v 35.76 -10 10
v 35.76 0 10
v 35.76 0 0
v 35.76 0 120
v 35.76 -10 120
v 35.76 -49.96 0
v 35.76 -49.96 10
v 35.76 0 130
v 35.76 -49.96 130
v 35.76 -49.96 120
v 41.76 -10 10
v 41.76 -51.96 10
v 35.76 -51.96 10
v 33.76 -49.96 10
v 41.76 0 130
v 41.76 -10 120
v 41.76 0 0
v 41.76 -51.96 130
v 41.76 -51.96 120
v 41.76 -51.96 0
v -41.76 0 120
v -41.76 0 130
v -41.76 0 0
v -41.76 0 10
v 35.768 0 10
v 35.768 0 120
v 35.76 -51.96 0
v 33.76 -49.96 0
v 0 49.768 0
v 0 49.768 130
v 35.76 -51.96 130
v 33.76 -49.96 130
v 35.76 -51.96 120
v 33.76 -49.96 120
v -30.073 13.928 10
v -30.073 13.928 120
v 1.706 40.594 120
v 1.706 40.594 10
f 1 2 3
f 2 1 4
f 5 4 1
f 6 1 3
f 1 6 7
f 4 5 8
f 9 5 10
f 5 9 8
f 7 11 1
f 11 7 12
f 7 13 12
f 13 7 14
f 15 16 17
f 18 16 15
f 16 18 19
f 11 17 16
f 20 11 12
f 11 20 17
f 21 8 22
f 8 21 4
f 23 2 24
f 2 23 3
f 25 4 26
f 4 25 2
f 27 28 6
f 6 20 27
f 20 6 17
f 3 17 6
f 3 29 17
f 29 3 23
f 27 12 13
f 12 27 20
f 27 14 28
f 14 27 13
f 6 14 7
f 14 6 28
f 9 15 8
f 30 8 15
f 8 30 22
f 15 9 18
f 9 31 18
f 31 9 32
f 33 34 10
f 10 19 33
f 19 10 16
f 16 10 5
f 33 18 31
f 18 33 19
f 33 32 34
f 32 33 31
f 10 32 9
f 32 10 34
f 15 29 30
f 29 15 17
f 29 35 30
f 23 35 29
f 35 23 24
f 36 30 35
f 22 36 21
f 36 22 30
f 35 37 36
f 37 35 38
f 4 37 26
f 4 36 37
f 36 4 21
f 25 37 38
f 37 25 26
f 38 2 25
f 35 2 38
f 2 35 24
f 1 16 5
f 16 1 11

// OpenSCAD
// file: triangles.scad
/*
Triangles.scad
 Author: Tim Koopman
 https://github.com/tkoopman/Delta-Diamond/blob/master/OpenSCAD/Triangles.scad

         angleCA
           /|\
        a / H \ c
         /  |  \
 angleAB ------- angleBC
            b

Standard Parameters
	center: true/false
		If true same as centerXYZ = [true, true, true]

	centerXYZ: Vector of 3 true/false values [CenterX, CenterY, CenterZ]
		center must be left undef

	height: The 3D height of the Triangle. Ignored if heights defined

	heights: Vector of 3 height values heights @ [angleAB, angleBC, angleCA]
		If CenterZ is true each height will be centered individually, this means
		the shape will be different depending on CenterZ. Most times you will want
		CenterZ to be true to get the shape most people want.
*/

/* 
Triangle
	a: Length of side a
	b: Length of side b
	angle: angle at point angleAB
*/
module Triangle(
			a, b, angle, height=1, heights=undef,
			center=undef, centerXYZ=[false,false,false])
{
	// Calculate Heights at each point
	heightAB = ((heights==undef) ? height : heights[0])/2;
	heightBC = ((heights==undef) ? height : heights[1])/2;
	heightCA = ((heights==undef) ? height : heights[2])/2;
	centerZ = (center || (center==undef && centerXYZ[2]))?0:max(heightAB,heightBC,heightCA);

	// Calculate Offsets for centering
	offsetX = (center || (center==undef && centerXYZ[0]))?((cos(angle)*a)+b)/3:0;
	offsetY = (center || (center==undef && centerXYZ[1]))?(sin(angle)*a)/3:0;
	
	pointAB1 = [-offsetX,-offsetY, centerZ-heightAB];
	pointAB2 = [-offsetX,-offsetY, centerZ+heightAB];
	pointBC1 = [b-offsetX,-offsetY, centerZ-heightBC];
	pointBC2 = [b-offsetX,-offsetY, centerZ+heightBC];
	pointCA1 = [(cos(angle)*a)-offsetX,(sin(angle)*a)-offsetY, centerZ-heightCA];
	pointCA2 = [(cos(angle)*a)-offsetX,(sin(angle)*a)-offsetY, centerZ+heightCA];

	polyhedron(
		points=[	pointAB1, pointBC1, pointCA1,
					pointAB2, pointBC2, pointCA2 ],
		faces=[	
			[0, 1, 2],
			[3, 5, 4],
			[0, 3, 1],
			[1, 3, 4],
			[1, 4, 2],
			[2, 4, 5],
			[2, 5, 0],
			[0, 5, 3] ] );
}

/*
Isosceles Triangle
	Exactly 2 of the following paramaters must be defined.
	If all 3 defined H will be ignored.
	b: length of side b
	angle: angle at points angleAB & angleBC.
*/
module Isosceles_Triangle(
			b, angle, H=undef, height=1, heights=undef,
			center=undef, centerXYZ=[true, false, false])
{
	valid = 	(angle!=undef)?((angle < 90) && (b!=undef||H!=undef)) : (b!=undef&&H!=undef);
	ANGLE = (angle!=undef) ? angle : atan(H / (b/2));
	a = (b==undef)?(H/sin((180-(angle*2))/2)) : 
		 (b / cos(ANGLE))/2;
	B = (b==undef)? (cos(angle)*a)*2:b;
	if (valid)
	{
		Triangle(a=a, b=B, angle=ANGLE, height=height, heights=heights,
					center=center, centerXYZ=centerXYZ);
	} else {
		echo("Invalid Isosceles_Triangle. Must specify any 2 of b, angle and H, and if angle used angle must be less than 90");
	}
}

/*
Right Angled Triangle
	Create a Right Angled Triangle where the hypotenuse will be calculated.

       |\
      a| \
       |  \
       ----
         b
	a: length of side a
	b: length of side b
*/
module Right_Angled_Triangle(
			a, b, height=1, heights=undef,
			center=undef, centerXYZ=[false, false, false])
{
	Triangle(a=a, b=b, angle=90, height=height, heights=heights,
				center=center, centerXYZ=centerXYZ);
}

/*
Wedge
	Is same as Right Angled Triangle with 2 different heights, and rotated.
	Good for creating support structures.
*/
module Wedge(a, b, w1, w2)
{
	rotate([90,0,0])
		Right_Angled_Triangle(a, b, heights=[w1, w2, w1], centerXYZ=[false, false, true]);
}

/*
Equilateral Triangle
	Create a Equilateral Triangle.

	l: Length of all sides (a, b & c)
	H: Triangle size will be based on the this 2D height
		When using H, l is ignored.
*/
module Equilateral_Triangle(
			l=10, H=undef, height=1, heights=undef,
			center=undef, centerXYZ=[true,false,false])
{
	L = (H==undef)?l:H/sin(60);
	Triangle(a=L,b=L,angle=60,height=height, heights=heights,
				center=center, centerXYZ=centerXYZ);
}

/*
Trapezoid
	Create a Basic Trapezoid (Based on Isosceles_Triangle)

            d
          /----\
         /  |   \
     a  /   H    \ c
       /    |     \
 angle ------------ angle
            b

	b: Length of side b
	angle: Angle at points angleAB & angleBC
	H: The 2D height at which the triangle should be cut to create the trapezoid
	heights: If vector of size 3 (Standard for triangles) both cd & da will be the same height, if vector have 4 values [ab,bc,cd,da] than each point can have different heights.
*/
module Trapezoid(
			b, angle=60, H, height=1, heights=undef,
			center=undef, centerXYZ=[true,false,false])
{
	validAngle = (angle < 90);
	adX = H / tan(angle);

	// Calculate Heights at each point
	heightAB = ((heights==undef) ? height : heights[0])/2;
	heightBC = ((heights==undef) ? height : heights[1])/2;
	heightCD = ((heights==undef) ? height : heights[2])/2;
	heightDA = ((heights==undef) ? height : ((len(heights) > 3)?heights[3]:heights[2]))/2;

	// Centers
	centerX = (center || (center==undef && centerXYZ[0]))?0:b/2;
	centerY = (center || (center==undef && centerXYZ[1]))?0:H/2;
	centerZ = (center || (center==undef && centerXYZ[2]))?0:max(heightAB,heightBC,heightCD,heightDA);

	// Points
	y = H/2;
	bx = b/2;
	dx = (b-(adX*2))/2;

	pointAB1 = [centerX-bx, centerY-y, centerZ-heightAB];
	pointAB2 = [centerX-bx, centerY-y, centerZ+heightAB];
	pointBC1 = [centerX+bx, centerY-y, centerZ-heightBC];
	pointBC2 = [centerX+bx, centerY-y, centerZ+heightBC];
	pointCD1 = [centerX+dx, centerY+y, centerZ-heightCD];
	pointCD2 = [centerX+dx, centerY+y, centerZ+heightCD];
	pointDA1 = [centerX-dx, centerY+y, centerZ-heightDA];
	pointDA2 = [centerX-dx, centerY+y, centerZ+heightDA];

	validH = (adX < b/2);

	if (validAngle && validH)
	{
		polyhedron(
			points=[	pointAB1, pointBC1, pointCD1, pointDA1,
						pointAB2, pointBC2, pointCD2, pointDA2 ],
			faces=[	
				[0, 1, 2],
				[0, 2, 3],
				[4, 6, 5],
				[4, 7, 6],
				[0, 4, 1],
				[1, 4, 5],
				[1, 5, 2],
				[2, 5, 6],
				[2, 6, 3],
				[3, 6, 7],
				[3, 7, 0],
				[0, 7, 4]	] );
	} else {
		if (!validAngle) echo("Trapezoid invalid, angle must be less than 90");
		else echo("Trapezoid invalid, H is larger than triangle");
	}
}


// Examples
Triangle(a=5, b=15, angle=33, centerXYZ=[true,false,false]);
translate([20,0,0]) Right_Angled_Triangle(a=5, b=20, centerXYZ=[false,true,false]);
translate([45,0,0]) Wedge(a=5, b=20, w1=10, w2=5);
translate([-20,0,0]) Trapezoid(b=20, angle=33, H=4, height=5, centerXYZ=[true,false,true]);

translate([0,10,0]) Isosceles_Triangle(b=20, angle=33);
translate([30,10,0]) Isosceles_Triangle(b=20, H=5);
translate([-30,10,0]) Isosceles_Triangle(angle=33, H=5, center=true);

translate([15,-25,0]) Equilateral_Triangle(l=20);
translate([-15,-25,0]) Equilateral_Triangle(H=20);
// main file
use <triangles.scad>;

keyboard_width = 130;
keyboard_depth = 51.76;


stand_angle = 50;

stand_y_thickness = 10;
stand_x_thickness = 6;

stand_h_length = keyboard_depth - stand_y_thickness;

stand_cutout_depth = 60;
stand_cutout_height = 65;

//shell
difference()
{
    echo(stand_h_length);
    Isosceles_Triangle( angle=stand_angle, H=stand_h_length, height=keyboard_width );
    
    rotate([0,0,-stand_angle]) 
    translate([-stand_cutout_depth/2,-0.1-stand_cutout_height/2-stand_y_thickness/2,stand_y_thickness]) cube([stand_cutout_depth,stand_cutout_height,keyboard_width-stand_y_thickness*2]);
}
draw_arms();

module draw_arms()
{
    x_position = stand_h_length - stand_x_thickness;
    
    arm(x_position);
    translate([0,0,keyboard_width-stand_y_thickness]) arm(x_position);

    //crossbeam
    translate([x_position,-stand_y_thickness,0]) cube([stand_x_thickness,stand_y_thickness,keyboard_width]);
}

//arms
module arm(x_position)
{
    tab_length = 2;
    arm_length = keyboard_depth + 0.2; //friction fit
    
    //arm
    translate([x_position,-arm_length,0]) cube([stand_x_thickness,arm_length,stand_y_thickness]);
    
    //tab
    translate([x_position,-arm_length+tab_length,0]) 
    rotate([0,0,180]) Right_Angled_Triangle( a=tab_length, b=tab_length, height=stand_y_thickness );
    
}
